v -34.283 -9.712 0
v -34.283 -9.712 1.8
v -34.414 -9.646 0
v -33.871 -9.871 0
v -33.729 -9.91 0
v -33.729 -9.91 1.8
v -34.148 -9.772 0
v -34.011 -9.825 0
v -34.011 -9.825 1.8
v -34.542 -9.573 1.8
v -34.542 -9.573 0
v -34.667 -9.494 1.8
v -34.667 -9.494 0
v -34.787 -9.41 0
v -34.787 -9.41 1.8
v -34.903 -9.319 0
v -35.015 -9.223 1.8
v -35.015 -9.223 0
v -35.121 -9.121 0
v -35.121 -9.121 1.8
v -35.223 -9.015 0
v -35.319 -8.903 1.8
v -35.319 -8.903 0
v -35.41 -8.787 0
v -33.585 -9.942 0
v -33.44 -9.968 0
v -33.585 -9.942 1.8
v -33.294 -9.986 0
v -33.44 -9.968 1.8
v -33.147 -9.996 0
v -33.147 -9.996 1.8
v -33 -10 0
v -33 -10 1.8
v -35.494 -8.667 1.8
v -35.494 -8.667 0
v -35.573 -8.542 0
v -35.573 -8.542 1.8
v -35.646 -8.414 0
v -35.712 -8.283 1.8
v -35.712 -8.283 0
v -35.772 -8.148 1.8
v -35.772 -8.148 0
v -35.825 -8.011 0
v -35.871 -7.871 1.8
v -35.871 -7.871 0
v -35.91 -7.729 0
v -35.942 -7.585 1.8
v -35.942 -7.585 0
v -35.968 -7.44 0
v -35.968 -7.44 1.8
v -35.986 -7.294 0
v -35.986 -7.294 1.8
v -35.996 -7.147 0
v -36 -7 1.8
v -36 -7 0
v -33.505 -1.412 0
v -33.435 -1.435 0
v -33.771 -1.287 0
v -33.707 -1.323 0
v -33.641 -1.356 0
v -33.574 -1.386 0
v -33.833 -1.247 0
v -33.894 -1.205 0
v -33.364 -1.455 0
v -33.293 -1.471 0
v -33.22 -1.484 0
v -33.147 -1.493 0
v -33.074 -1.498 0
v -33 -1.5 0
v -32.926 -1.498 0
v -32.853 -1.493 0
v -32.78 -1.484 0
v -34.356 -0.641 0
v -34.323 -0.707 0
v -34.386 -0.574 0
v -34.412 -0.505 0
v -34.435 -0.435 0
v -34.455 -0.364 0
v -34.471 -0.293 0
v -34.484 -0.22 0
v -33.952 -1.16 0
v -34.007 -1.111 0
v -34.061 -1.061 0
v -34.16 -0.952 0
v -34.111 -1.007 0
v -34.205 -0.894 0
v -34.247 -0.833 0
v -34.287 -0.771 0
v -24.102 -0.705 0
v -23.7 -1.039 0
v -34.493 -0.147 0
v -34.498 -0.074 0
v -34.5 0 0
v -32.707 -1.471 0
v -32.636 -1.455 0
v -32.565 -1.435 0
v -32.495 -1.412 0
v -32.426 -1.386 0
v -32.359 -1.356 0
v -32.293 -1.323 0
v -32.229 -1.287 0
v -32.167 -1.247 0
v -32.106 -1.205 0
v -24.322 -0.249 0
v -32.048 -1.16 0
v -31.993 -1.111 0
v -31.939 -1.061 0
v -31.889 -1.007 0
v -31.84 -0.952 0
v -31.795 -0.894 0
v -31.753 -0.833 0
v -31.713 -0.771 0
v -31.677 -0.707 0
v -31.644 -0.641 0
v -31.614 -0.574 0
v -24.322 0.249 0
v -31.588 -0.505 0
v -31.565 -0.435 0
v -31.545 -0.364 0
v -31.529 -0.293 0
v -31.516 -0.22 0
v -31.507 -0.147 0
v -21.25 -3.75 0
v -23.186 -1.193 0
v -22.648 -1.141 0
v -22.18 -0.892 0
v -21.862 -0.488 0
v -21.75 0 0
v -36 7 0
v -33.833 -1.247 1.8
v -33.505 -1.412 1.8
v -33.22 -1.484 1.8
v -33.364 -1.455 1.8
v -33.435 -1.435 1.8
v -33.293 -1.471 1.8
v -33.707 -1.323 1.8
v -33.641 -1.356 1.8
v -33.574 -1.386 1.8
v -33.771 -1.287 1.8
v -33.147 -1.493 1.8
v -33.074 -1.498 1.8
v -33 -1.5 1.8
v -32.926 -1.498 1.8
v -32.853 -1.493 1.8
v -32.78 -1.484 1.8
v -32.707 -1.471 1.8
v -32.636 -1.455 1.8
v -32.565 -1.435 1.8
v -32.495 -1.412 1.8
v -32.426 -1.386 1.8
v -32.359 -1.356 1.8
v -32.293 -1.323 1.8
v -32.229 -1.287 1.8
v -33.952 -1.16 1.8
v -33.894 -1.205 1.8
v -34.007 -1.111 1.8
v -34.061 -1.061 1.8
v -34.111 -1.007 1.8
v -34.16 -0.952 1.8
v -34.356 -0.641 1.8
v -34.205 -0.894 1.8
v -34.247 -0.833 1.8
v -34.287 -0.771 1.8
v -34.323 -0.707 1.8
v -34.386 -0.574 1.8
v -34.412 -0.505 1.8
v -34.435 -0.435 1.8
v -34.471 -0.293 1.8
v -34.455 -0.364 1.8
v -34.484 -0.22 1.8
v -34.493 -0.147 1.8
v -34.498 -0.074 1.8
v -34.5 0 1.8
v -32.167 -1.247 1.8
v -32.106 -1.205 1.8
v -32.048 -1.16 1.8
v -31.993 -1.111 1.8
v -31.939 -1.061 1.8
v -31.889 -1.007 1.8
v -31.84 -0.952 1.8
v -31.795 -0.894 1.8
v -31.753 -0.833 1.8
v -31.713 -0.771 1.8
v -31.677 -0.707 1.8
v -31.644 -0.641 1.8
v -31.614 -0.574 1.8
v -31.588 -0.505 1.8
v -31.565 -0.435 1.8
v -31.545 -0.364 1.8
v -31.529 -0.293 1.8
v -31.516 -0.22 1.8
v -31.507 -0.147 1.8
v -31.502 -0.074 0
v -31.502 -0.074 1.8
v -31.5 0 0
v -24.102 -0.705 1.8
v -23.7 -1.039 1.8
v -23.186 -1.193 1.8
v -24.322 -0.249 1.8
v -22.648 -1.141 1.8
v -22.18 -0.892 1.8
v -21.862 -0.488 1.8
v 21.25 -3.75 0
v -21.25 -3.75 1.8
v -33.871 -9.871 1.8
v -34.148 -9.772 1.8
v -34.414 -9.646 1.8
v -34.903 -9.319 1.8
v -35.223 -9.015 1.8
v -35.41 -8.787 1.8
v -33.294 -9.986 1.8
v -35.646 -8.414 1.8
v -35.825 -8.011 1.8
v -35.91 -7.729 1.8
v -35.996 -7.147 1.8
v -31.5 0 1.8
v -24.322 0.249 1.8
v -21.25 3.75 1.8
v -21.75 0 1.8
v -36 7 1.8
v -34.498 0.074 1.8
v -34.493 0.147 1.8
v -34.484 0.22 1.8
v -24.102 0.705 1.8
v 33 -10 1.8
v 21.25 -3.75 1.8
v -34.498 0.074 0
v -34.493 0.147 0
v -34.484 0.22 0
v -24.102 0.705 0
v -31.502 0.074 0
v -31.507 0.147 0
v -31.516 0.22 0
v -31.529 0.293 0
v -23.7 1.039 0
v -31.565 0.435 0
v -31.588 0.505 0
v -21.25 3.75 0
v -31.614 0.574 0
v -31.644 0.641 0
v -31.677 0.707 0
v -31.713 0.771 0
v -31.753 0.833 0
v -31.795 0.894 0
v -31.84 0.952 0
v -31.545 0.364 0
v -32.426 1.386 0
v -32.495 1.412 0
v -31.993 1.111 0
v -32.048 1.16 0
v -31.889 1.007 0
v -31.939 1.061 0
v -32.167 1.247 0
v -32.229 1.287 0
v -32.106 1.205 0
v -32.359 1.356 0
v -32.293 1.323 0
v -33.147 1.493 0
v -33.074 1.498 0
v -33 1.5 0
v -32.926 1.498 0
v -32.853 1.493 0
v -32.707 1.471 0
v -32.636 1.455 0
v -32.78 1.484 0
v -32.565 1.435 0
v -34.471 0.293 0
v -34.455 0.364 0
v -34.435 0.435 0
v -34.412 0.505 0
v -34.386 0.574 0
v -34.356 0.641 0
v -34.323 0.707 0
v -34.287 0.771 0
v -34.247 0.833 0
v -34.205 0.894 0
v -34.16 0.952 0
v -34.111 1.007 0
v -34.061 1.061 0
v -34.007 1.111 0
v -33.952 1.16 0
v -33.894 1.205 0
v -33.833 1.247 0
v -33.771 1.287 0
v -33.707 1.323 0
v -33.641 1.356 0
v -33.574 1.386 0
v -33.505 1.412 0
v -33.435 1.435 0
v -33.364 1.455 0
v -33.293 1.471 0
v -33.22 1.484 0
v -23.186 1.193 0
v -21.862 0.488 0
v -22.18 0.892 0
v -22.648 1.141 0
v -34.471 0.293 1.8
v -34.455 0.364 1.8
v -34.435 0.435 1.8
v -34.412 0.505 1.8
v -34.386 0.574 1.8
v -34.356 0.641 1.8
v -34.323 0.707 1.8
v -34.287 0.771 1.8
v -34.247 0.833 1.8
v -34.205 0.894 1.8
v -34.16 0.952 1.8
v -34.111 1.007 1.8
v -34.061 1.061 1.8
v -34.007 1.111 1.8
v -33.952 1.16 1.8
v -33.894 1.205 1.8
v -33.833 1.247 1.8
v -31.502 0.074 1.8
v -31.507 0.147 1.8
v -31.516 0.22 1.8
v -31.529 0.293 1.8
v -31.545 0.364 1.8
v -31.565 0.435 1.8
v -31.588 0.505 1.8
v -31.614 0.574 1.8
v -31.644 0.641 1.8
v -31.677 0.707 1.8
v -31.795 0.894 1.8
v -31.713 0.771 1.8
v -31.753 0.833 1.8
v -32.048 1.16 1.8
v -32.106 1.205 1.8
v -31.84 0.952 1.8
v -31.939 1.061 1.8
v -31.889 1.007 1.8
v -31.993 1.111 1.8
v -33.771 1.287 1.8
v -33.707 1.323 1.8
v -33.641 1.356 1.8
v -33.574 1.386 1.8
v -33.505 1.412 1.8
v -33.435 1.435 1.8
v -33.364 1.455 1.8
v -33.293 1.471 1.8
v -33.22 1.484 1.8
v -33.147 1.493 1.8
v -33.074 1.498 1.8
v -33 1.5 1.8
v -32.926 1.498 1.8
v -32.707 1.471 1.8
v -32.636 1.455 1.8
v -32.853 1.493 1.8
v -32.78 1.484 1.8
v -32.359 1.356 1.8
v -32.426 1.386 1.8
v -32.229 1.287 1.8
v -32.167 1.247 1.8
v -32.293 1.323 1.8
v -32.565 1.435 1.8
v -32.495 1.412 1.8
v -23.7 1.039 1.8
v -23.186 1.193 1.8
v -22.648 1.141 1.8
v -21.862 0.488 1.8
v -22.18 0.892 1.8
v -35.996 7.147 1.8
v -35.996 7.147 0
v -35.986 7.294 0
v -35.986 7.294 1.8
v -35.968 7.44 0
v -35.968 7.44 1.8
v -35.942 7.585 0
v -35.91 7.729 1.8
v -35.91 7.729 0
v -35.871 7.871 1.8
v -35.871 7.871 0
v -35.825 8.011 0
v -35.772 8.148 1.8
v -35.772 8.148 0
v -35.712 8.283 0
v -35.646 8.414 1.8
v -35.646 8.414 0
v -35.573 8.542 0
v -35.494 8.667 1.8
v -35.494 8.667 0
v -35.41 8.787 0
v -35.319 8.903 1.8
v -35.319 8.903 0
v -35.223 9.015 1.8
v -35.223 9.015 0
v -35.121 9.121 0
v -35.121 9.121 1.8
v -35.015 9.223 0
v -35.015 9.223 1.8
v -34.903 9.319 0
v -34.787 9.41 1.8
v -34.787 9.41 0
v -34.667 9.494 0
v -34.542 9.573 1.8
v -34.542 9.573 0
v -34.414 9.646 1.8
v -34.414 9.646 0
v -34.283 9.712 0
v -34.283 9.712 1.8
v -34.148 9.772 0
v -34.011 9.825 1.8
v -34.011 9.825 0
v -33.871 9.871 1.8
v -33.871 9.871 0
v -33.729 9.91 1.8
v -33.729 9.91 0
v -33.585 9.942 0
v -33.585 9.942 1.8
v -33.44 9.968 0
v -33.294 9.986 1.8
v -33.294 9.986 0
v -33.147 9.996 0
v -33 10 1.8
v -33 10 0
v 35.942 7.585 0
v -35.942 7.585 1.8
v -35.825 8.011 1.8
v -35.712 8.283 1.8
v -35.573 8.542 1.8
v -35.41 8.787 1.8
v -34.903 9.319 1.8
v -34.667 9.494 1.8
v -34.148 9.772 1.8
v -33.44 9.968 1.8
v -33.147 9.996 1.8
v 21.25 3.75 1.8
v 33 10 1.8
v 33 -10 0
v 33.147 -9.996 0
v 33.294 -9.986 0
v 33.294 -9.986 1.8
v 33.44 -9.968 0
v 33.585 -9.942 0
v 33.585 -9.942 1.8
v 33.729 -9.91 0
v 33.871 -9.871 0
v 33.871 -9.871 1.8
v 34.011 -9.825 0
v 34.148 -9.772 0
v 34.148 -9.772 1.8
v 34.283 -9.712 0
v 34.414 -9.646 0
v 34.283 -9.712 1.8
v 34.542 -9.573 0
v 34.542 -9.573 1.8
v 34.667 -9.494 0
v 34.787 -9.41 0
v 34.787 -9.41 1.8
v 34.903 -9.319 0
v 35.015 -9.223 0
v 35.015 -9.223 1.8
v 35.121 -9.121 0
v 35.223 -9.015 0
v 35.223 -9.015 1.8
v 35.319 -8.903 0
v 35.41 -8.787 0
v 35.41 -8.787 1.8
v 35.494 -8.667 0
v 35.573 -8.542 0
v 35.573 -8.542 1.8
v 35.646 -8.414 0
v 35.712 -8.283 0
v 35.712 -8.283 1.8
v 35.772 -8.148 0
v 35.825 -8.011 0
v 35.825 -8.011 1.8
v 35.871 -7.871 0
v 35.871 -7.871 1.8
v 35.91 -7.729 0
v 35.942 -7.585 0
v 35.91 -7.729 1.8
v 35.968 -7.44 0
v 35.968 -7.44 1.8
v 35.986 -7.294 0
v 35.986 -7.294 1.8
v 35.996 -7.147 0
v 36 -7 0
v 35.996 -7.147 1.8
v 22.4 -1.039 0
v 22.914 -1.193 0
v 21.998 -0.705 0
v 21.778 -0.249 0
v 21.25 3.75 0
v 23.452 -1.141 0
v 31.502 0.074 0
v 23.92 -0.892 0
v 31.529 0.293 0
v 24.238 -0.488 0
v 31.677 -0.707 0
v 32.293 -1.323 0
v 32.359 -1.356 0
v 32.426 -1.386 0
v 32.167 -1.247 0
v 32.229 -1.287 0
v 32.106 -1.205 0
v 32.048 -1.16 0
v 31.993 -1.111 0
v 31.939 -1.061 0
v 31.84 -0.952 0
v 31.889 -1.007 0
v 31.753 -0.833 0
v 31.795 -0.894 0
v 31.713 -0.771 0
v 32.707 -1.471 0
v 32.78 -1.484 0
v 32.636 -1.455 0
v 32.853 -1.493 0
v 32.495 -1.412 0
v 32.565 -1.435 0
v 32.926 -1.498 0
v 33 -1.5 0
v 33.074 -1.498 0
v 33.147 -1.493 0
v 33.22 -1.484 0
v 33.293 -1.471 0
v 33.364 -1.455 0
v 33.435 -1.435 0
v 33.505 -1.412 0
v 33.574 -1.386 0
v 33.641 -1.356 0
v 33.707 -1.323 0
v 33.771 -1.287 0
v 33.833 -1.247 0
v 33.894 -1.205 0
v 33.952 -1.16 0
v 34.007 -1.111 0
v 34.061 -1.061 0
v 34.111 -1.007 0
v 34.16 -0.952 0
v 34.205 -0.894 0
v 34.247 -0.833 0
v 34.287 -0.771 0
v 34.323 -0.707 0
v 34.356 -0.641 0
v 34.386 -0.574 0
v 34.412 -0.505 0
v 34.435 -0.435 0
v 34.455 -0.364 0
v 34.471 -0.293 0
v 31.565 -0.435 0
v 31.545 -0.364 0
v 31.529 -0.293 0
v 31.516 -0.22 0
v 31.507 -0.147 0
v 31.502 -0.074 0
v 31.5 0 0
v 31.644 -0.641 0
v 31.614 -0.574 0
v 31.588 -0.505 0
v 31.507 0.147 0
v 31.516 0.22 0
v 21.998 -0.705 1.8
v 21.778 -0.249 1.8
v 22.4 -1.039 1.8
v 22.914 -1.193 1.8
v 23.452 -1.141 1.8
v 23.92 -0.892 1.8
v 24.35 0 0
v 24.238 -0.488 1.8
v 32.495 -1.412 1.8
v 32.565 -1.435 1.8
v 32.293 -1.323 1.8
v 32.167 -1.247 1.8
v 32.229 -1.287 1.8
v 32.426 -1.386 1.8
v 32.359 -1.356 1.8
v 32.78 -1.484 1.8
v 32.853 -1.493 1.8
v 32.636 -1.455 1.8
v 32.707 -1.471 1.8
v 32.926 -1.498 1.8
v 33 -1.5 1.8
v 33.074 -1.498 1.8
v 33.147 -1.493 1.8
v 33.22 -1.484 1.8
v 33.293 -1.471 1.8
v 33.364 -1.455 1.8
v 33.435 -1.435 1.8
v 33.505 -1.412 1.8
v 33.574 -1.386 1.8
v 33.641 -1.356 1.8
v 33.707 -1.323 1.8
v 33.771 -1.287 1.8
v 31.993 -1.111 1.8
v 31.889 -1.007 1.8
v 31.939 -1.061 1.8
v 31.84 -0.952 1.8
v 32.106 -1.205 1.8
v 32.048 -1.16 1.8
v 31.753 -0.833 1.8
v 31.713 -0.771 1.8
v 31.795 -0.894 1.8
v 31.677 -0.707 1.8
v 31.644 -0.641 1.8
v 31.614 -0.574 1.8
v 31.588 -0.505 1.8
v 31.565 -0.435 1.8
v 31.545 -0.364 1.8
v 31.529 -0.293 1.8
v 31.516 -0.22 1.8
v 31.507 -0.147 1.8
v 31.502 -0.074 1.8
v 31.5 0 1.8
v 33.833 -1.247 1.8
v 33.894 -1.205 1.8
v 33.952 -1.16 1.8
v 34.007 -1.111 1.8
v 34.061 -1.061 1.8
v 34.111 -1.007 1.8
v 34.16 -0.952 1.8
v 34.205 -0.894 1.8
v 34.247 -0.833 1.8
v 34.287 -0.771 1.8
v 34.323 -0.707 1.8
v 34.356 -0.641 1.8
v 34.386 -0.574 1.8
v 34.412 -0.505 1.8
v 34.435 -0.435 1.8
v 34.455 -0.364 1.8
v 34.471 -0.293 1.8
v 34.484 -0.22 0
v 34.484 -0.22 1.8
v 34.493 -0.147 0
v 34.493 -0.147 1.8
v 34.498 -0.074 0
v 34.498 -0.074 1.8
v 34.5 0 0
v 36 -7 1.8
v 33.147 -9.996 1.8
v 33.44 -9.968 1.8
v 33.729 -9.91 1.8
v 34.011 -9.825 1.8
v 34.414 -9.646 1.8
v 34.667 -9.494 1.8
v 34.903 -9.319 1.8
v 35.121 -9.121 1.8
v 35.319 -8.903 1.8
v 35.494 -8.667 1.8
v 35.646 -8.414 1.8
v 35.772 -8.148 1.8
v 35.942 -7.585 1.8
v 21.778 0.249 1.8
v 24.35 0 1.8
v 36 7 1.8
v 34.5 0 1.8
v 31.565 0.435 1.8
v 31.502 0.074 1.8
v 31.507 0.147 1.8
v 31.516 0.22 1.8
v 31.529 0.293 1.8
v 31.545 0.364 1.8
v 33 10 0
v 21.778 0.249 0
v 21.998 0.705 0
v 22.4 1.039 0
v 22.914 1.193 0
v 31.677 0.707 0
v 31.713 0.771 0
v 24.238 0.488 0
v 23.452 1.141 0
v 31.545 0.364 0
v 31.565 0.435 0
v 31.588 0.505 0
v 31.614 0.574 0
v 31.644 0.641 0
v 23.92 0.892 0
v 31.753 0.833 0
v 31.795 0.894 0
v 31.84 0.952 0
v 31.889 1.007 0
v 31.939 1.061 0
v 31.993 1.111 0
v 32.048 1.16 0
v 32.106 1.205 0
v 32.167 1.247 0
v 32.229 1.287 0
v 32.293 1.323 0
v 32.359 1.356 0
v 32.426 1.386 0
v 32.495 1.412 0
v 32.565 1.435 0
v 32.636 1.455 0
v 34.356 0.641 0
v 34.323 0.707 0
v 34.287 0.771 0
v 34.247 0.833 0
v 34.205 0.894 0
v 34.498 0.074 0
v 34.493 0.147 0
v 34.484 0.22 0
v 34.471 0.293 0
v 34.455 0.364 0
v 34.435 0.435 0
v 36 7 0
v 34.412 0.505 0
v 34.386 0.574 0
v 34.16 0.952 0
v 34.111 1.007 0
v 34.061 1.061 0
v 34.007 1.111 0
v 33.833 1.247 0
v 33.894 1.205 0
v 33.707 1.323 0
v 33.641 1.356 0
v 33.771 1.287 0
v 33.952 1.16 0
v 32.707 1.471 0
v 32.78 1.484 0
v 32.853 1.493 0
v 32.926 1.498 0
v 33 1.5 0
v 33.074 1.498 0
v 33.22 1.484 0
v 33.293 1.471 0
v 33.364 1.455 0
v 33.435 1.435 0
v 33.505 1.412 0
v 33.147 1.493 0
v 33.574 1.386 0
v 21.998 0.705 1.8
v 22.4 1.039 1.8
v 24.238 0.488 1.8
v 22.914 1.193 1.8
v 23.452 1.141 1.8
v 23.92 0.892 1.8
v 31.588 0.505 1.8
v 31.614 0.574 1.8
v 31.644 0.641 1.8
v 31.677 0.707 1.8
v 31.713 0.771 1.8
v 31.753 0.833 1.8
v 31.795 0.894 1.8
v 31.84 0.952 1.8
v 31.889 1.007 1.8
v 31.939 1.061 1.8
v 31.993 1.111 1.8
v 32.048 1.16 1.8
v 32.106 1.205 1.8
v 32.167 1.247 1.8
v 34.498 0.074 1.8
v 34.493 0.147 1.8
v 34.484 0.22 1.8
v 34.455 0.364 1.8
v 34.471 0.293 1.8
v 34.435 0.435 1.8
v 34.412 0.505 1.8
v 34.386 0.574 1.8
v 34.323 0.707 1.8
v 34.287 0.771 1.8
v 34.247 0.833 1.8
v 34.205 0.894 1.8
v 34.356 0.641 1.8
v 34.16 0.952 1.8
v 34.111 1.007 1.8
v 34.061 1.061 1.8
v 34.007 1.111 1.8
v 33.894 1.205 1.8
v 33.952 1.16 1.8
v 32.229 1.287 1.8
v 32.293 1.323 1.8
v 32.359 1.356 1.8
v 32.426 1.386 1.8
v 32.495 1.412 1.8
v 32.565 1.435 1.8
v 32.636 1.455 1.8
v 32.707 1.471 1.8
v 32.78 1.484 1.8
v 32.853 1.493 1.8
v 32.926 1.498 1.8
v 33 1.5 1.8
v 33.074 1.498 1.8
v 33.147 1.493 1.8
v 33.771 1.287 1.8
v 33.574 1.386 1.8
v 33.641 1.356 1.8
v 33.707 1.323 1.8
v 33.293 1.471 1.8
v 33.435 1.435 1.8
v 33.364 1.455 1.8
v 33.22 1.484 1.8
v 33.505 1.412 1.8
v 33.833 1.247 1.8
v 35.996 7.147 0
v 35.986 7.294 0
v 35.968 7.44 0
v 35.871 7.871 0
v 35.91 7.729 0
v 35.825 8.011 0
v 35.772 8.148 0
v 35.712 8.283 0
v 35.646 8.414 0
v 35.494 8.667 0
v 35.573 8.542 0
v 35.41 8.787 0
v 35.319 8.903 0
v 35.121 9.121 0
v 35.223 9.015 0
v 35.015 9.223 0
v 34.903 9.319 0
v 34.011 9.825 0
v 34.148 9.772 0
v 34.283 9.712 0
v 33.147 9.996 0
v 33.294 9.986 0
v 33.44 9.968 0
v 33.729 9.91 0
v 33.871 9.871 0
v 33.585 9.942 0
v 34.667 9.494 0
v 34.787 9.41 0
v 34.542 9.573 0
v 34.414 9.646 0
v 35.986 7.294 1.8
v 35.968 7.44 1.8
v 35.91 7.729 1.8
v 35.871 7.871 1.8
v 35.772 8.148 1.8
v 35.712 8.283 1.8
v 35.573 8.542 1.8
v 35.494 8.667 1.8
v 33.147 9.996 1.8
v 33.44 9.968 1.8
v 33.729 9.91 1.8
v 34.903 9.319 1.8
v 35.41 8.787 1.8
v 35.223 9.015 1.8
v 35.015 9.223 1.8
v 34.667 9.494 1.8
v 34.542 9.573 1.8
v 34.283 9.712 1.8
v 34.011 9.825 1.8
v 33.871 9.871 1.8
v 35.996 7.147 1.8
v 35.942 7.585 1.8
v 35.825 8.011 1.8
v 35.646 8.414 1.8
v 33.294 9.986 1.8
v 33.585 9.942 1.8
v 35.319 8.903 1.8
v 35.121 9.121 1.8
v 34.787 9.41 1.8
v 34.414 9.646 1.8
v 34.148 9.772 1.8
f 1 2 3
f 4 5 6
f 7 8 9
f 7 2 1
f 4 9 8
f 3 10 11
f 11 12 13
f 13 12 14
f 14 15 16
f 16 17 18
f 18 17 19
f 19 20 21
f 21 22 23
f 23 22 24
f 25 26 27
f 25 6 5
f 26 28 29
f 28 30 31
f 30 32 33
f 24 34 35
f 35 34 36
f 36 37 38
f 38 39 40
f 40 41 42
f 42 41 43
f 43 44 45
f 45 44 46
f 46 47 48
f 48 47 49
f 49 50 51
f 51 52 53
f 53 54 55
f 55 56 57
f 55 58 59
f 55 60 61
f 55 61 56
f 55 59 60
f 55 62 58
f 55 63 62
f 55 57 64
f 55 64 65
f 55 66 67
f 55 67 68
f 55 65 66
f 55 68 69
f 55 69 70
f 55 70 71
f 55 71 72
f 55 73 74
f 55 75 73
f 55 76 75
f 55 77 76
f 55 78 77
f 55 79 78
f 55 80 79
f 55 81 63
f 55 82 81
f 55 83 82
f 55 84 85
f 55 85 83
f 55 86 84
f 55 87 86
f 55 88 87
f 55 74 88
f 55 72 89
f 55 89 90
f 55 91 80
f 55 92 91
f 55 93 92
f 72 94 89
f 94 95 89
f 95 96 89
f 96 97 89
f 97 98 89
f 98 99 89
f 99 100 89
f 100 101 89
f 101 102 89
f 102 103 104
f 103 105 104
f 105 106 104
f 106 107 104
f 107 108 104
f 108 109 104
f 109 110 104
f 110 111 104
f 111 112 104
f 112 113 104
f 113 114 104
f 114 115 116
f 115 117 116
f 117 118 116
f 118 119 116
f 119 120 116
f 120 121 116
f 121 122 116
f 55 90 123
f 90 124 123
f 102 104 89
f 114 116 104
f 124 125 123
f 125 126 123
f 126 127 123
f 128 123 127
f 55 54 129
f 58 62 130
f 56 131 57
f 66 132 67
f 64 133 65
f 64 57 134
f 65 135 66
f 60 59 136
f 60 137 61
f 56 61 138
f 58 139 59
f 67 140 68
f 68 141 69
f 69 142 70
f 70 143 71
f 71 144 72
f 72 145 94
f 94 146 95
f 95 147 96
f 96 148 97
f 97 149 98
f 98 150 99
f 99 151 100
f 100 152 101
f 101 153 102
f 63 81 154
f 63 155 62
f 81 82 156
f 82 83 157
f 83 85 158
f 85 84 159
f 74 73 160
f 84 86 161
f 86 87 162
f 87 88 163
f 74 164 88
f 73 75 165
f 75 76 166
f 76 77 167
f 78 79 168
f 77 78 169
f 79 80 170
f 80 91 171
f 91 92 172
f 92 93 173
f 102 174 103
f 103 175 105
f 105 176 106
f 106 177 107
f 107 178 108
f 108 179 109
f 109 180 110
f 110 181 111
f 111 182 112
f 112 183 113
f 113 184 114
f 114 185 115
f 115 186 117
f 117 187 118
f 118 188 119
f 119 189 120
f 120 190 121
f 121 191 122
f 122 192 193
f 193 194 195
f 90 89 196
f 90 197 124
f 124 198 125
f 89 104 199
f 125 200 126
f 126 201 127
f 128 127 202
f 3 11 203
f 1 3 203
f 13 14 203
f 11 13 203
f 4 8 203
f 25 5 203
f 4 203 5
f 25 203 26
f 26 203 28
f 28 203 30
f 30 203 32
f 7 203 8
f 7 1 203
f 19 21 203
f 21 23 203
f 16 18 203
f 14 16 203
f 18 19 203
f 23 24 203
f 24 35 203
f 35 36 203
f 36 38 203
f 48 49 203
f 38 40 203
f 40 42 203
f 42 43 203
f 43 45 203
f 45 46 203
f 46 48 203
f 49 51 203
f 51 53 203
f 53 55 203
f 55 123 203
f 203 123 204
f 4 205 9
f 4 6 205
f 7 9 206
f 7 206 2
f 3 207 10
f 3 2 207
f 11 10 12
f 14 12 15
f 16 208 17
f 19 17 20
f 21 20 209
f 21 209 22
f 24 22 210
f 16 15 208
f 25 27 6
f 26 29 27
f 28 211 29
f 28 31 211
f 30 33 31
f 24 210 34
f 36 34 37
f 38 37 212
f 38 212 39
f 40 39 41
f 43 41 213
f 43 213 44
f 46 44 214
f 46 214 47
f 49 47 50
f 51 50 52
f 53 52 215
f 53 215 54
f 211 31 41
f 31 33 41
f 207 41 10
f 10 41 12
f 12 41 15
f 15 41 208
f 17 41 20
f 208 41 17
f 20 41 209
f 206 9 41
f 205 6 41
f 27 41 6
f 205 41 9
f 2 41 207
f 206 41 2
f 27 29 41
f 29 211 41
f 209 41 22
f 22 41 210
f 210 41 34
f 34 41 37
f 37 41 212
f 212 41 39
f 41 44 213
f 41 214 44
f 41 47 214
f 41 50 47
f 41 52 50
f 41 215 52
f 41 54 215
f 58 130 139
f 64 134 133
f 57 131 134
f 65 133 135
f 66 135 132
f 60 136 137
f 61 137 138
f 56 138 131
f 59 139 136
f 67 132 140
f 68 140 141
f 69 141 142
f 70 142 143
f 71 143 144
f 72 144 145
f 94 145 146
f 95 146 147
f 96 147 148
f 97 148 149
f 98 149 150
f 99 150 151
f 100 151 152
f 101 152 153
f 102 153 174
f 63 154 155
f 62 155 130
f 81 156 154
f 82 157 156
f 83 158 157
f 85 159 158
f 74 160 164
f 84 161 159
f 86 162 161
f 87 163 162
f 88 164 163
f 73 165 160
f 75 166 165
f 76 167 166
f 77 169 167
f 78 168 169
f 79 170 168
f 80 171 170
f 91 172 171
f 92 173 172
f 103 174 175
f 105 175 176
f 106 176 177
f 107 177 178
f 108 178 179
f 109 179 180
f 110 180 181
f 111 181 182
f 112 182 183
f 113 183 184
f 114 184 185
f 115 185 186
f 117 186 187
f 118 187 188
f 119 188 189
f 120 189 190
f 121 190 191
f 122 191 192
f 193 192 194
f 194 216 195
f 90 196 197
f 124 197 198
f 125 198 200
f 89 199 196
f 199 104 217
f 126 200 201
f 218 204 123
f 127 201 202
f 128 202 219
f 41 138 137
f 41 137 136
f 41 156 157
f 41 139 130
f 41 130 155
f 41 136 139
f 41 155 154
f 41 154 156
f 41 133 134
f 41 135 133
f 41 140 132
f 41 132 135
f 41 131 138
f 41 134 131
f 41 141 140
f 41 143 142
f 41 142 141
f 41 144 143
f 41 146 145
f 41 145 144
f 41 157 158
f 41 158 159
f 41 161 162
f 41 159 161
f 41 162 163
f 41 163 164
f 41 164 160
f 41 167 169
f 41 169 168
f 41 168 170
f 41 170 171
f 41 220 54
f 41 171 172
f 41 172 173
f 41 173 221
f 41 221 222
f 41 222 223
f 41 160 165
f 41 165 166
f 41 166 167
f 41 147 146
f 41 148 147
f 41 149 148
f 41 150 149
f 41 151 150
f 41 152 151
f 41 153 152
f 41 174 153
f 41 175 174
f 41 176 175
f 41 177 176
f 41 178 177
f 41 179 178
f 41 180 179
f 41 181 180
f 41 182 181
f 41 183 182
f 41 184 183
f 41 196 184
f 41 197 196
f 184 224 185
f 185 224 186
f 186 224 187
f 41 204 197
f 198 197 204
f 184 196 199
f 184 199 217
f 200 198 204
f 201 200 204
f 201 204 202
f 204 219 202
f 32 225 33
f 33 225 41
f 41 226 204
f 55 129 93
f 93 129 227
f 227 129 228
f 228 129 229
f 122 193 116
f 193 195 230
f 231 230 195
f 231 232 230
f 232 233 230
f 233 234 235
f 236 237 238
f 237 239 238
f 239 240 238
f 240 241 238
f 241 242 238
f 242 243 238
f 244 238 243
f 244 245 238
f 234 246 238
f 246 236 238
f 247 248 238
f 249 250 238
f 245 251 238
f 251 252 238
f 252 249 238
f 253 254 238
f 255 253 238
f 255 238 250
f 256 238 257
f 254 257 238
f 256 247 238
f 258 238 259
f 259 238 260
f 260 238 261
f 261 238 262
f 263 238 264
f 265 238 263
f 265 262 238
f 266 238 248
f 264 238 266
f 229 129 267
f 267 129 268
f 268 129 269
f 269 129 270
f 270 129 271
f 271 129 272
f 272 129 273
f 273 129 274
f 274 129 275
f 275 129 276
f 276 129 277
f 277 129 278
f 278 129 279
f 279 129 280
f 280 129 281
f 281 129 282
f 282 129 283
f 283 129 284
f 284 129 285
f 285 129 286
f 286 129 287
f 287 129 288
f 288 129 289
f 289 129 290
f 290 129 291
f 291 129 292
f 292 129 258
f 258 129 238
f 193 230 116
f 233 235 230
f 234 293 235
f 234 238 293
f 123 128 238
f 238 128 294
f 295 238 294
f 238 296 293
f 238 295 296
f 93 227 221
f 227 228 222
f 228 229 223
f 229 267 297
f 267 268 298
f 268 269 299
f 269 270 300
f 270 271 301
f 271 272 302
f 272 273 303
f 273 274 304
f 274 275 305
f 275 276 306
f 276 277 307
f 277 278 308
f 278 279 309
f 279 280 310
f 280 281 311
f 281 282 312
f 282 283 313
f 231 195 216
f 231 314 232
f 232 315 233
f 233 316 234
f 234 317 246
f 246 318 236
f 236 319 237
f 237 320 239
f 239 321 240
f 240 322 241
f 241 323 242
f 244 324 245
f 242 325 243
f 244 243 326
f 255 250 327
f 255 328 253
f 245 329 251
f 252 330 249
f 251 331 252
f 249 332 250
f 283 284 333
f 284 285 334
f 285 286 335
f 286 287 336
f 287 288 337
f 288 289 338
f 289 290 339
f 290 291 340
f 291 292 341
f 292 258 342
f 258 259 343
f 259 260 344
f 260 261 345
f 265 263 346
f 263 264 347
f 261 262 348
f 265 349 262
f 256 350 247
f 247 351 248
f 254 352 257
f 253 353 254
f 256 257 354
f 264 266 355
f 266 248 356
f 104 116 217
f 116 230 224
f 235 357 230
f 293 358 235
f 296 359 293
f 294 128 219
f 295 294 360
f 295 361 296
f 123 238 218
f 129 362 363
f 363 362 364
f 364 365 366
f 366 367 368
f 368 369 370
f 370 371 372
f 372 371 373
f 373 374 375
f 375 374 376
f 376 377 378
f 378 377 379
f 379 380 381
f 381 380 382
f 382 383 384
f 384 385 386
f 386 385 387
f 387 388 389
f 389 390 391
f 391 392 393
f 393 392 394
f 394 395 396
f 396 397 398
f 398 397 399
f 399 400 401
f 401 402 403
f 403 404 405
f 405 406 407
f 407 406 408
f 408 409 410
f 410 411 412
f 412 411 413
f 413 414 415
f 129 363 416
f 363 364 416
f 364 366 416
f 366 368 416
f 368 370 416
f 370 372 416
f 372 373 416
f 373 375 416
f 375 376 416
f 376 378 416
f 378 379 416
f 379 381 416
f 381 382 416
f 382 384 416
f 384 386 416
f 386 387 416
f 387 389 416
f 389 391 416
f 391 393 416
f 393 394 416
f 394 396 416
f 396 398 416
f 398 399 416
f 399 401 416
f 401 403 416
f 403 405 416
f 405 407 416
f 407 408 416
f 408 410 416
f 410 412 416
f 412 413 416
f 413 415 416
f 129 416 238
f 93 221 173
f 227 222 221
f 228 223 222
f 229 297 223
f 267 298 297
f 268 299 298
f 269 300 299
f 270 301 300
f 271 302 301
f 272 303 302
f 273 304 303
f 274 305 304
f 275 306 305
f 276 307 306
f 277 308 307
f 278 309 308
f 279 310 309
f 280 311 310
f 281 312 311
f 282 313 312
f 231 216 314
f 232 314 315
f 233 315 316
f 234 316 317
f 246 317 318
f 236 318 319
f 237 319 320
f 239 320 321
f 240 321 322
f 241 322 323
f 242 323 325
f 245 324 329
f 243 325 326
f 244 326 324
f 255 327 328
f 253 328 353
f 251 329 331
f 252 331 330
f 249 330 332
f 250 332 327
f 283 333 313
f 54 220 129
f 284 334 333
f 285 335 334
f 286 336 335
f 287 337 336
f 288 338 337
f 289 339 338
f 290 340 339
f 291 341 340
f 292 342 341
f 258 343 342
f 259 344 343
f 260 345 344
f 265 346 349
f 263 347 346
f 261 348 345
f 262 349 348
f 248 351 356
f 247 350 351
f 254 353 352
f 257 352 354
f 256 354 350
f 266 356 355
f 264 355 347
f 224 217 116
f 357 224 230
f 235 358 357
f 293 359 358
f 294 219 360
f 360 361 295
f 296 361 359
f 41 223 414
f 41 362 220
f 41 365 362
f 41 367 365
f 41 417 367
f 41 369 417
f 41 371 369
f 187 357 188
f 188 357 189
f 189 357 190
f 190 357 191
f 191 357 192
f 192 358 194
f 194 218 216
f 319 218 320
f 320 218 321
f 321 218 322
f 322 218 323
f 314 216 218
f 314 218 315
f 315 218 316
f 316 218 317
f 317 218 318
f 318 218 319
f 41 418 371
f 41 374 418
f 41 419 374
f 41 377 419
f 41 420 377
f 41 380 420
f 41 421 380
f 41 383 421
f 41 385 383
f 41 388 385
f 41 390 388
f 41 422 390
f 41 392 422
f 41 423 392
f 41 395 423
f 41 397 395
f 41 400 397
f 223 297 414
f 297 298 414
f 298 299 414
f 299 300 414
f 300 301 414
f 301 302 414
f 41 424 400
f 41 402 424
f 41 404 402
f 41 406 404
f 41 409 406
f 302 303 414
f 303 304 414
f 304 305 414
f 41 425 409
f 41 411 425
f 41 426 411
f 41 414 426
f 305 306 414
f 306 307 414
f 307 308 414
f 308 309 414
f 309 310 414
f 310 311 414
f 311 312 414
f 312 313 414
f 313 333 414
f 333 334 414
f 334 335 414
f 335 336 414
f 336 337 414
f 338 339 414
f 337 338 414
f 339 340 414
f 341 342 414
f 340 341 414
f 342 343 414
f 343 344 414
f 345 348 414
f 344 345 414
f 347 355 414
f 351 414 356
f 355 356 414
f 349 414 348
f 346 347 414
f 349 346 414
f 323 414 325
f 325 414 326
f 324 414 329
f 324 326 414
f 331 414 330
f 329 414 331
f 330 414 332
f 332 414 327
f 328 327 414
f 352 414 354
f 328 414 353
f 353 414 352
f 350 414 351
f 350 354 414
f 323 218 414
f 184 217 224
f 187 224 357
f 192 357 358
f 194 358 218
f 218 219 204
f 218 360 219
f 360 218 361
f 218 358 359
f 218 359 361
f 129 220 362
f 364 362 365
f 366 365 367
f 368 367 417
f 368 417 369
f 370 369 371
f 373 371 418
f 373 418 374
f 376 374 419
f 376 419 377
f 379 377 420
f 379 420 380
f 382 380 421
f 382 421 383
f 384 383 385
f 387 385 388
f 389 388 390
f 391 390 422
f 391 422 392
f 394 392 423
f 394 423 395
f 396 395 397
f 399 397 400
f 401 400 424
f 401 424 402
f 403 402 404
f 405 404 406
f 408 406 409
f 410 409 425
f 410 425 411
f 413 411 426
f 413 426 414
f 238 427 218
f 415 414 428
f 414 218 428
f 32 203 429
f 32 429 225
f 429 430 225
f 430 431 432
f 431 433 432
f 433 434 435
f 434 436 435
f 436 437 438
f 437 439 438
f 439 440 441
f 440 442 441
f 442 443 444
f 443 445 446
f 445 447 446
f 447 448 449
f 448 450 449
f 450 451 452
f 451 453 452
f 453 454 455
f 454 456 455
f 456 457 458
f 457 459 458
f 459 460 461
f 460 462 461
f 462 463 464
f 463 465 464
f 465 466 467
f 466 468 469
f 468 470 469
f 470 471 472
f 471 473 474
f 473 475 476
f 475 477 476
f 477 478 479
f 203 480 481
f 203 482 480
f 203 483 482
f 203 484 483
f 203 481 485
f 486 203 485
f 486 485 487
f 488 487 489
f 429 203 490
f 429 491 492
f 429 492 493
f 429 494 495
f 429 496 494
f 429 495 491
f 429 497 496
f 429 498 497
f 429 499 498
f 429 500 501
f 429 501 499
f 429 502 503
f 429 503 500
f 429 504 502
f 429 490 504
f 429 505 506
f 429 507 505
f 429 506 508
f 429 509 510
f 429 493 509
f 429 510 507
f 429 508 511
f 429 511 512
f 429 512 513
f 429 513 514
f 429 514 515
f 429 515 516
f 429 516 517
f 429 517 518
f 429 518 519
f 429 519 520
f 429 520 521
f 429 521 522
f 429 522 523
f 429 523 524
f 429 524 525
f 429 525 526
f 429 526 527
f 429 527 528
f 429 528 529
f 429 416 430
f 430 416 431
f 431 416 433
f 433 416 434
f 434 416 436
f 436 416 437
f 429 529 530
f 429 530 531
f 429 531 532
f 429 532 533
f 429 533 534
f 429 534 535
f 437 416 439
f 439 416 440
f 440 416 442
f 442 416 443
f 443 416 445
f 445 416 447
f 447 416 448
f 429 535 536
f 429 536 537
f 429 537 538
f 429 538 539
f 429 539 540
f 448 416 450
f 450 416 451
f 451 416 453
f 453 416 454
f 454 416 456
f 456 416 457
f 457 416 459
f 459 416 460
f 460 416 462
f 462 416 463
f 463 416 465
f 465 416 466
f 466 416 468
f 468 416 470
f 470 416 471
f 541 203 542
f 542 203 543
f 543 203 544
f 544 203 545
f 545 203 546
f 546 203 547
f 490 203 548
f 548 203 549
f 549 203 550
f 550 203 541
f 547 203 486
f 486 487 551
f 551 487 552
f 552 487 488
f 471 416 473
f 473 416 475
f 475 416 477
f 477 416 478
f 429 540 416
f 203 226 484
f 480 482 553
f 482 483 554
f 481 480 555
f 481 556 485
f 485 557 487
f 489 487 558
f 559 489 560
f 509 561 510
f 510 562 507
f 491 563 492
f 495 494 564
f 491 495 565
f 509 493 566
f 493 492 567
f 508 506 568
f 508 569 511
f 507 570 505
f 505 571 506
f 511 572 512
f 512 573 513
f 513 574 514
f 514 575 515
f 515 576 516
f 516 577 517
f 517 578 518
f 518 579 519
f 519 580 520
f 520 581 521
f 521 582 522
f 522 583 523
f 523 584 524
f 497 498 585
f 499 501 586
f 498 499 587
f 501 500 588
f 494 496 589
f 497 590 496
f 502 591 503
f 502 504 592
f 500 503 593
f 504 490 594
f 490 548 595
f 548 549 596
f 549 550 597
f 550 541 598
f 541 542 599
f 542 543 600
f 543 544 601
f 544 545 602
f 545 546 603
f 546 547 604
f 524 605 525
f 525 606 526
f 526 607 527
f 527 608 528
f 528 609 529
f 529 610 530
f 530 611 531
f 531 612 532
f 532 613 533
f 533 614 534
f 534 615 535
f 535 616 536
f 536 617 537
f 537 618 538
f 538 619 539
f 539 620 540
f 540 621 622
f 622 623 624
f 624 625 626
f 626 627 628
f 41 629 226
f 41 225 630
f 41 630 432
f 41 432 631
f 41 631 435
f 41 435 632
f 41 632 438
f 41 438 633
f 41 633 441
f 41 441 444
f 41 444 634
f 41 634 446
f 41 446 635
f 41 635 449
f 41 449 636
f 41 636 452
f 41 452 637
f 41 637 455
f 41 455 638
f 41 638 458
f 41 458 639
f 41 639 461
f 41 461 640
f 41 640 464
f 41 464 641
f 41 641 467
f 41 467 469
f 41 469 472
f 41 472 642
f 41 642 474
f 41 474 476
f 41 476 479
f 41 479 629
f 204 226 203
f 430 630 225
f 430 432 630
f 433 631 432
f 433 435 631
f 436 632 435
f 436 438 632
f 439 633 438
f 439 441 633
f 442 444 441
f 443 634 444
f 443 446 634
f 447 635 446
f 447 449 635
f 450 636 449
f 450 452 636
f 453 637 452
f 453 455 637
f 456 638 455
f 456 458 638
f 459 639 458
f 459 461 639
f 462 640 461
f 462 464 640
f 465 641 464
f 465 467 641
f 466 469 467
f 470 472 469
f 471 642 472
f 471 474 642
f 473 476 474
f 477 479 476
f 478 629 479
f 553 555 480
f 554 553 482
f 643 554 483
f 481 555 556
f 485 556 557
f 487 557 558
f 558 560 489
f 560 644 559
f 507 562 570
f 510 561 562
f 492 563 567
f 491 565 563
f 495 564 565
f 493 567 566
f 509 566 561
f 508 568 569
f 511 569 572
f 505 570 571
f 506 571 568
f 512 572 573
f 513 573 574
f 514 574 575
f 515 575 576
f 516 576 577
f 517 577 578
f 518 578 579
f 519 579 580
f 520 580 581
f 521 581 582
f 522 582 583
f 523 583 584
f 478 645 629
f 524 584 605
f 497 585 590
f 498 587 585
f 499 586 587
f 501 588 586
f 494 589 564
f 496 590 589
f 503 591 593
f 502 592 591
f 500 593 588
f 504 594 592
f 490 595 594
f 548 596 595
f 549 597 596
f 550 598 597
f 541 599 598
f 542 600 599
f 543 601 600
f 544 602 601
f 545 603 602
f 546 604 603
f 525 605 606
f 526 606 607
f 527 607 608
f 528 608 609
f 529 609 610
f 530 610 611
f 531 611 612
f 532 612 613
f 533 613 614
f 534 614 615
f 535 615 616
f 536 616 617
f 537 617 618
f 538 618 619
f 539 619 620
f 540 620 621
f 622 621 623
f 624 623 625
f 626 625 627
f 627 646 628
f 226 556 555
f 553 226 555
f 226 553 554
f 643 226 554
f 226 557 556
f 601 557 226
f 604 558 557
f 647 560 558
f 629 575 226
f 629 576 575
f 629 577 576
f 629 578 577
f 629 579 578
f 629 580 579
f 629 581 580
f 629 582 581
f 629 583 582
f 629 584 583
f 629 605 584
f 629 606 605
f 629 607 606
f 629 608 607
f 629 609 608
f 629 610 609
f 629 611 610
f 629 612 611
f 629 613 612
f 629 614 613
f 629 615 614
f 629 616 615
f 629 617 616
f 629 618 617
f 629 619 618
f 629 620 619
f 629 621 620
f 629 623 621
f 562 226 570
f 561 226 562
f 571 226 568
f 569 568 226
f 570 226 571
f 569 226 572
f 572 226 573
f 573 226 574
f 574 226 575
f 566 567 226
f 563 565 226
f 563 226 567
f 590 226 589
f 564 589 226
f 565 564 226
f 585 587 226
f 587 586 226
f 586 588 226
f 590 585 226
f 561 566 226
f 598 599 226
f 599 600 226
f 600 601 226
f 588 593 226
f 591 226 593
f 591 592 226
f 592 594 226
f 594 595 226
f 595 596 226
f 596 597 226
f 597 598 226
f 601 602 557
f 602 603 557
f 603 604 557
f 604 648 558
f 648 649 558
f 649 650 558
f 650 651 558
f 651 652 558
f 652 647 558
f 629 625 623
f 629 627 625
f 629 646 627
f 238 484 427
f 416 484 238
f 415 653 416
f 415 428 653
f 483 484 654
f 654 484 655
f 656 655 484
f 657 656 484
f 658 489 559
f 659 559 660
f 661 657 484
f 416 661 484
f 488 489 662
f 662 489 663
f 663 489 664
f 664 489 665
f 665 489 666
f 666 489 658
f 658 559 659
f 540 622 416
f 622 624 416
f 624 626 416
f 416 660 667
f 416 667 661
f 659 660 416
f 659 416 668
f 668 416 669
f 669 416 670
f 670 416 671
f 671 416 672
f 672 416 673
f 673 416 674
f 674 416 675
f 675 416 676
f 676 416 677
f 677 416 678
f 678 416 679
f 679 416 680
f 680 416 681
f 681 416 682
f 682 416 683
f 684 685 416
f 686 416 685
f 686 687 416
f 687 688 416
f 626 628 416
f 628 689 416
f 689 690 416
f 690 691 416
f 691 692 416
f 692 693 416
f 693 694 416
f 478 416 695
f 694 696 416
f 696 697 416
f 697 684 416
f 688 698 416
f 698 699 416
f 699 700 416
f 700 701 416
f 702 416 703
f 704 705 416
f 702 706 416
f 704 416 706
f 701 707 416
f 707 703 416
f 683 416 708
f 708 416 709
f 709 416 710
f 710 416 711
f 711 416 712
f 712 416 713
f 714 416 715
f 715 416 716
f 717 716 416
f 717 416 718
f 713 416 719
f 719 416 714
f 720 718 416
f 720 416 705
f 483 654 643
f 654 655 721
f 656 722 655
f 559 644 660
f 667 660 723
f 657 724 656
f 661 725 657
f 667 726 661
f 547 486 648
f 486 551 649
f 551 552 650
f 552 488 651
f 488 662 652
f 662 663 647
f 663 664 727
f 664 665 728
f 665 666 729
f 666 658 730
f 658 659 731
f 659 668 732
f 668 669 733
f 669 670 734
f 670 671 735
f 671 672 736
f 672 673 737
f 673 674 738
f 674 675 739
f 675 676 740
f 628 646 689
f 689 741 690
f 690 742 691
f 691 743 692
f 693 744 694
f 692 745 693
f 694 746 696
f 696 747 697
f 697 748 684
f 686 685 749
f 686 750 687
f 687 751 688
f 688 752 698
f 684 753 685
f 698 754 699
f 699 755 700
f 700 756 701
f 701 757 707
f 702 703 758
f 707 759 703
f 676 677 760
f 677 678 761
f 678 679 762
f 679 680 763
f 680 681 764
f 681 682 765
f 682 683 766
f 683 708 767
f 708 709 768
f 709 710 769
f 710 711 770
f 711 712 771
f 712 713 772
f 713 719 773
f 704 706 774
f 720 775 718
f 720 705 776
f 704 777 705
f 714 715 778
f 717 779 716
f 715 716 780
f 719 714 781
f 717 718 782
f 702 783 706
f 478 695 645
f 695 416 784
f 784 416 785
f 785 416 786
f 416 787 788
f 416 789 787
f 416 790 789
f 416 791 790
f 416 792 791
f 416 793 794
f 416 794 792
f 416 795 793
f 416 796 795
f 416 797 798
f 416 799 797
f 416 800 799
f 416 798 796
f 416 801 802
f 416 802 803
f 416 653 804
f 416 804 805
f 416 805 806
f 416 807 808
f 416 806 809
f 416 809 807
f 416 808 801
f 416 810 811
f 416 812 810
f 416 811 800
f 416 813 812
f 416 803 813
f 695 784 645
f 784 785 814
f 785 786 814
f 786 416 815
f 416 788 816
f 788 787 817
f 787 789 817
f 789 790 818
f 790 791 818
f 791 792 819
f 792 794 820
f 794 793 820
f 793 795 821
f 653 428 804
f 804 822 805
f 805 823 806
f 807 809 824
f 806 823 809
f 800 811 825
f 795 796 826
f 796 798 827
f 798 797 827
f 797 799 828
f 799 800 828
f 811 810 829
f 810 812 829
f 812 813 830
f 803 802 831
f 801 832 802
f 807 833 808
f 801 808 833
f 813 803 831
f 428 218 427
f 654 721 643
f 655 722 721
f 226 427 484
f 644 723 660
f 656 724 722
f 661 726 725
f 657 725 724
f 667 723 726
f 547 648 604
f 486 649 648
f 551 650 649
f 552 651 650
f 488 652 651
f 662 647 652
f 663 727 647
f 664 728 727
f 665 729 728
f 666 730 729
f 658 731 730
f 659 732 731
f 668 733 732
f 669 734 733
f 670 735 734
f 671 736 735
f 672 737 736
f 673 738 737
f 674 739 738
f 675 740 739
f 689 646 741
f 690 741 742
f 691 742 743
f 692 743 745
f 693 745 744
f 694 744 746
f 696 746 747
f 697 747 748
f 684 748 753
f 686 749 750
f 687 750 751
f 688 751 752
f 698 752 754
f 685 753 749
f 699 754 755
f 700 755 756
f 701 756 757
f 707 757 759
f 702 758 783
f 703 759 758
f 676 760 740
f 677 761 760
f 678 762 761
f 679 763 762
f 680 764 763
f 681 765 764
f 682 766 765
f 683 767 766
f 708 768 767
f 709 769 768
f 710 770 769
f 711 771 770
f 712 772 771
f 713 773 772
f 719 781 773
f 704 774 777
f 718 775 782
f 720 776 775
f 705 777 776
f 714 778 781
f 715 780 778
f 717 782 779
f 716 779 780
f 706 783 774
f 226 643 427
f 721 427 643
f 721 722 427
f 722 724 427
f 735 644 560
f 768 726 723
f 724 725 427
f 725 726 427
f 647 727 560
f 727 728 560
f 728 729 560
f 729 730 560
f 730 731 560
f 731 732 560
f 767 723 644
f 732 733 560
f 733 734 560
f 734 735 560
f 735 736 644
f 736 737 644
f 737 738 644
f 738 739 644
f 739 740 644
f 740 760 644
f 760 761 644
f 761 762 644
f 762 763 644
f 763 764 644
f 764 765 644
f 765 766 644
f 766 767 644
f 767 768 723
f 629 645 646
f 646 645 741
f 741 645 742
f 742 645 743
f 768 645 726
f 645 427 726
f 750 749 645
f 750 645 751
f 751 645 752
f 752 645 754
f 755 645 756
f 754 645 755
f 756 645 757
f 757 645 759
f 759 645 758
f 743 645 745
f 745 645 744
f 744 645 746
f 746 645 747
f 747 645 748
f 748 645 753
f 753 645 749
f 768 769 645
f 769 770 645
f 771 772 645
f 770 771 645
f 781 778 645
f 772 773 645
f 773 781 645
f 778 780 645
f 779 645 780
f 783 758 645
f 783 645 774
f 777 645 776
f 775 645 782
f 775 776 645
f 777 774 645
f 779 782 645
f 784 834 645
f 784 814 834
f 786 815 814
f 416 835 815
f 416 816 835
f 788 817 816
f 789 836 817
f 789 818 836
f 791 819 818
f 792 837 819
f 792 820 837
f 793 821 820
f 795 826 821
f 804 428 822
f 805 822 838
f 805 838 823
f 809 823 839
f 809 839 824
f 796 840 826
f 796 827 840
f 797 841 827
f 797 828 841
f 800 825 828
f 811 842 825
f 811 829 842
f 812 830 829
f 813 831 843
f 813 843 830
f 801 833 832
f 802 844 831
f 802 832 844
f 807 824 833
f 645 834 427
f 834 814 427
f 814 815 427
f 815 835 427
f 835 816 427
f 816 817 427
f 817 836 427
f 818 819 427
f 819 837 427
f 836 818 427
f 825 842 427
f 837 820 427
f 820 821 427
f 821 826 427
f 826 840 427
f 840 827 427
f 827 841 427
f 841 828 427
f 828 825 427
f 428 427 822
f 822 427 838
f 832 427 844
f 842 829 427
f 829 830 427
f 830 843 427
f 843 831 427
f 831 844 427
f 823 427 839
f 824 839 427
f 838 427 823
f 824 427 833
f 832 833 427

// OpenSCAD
$fn = 128;  // smoothness of corners
$thickness = 1.8;
//$holeoffset = -1.3;
$holeoffset = 0;

module rounded_plate(size, radius) {
    hull() {
        for (x = [-1, 1], y = [-1, 1])
            translate([x * (size.x/2 - radius), y * (size.y/2 - radius), 0])
                cylinder(h = size.z, r = radius, center = false);
    }
}

color ("beige") translate ([0,0,0])
    difference () {
        difference() {
            rounded_plate([72, 20, $thickness], radius = 3);
            union() {
                translate ([-33,$holeoffset,-0.1])
                    cylinder(h = $thickness + 0.2, r = 1.5, center = false);
                translate ([33,$holeoffset,-0.1])
                    cylinder(h = $thickness+0.2, r = 1.5, center = false);
            }
        };
 
        translate ([-49.1,-11.1,0]) union()
        {
            translate([27.85,7.35,-0.1])
                cube([42.5,7.5,$thickness + 0.2]);
            translate([26.05,11.1,-0.1])
            {
                scale([2.6/2.4, 1, 1])
                    cylinder(d=2.4, h=$thickness + 0.2, $fn=15);
                translate([46.1,0,0])
                    scale([2.6/2.4, 1, 1])
                        cylinder(d=2.4, h=$thickness + 0.2, $fn=15);
            }
        }
    }
